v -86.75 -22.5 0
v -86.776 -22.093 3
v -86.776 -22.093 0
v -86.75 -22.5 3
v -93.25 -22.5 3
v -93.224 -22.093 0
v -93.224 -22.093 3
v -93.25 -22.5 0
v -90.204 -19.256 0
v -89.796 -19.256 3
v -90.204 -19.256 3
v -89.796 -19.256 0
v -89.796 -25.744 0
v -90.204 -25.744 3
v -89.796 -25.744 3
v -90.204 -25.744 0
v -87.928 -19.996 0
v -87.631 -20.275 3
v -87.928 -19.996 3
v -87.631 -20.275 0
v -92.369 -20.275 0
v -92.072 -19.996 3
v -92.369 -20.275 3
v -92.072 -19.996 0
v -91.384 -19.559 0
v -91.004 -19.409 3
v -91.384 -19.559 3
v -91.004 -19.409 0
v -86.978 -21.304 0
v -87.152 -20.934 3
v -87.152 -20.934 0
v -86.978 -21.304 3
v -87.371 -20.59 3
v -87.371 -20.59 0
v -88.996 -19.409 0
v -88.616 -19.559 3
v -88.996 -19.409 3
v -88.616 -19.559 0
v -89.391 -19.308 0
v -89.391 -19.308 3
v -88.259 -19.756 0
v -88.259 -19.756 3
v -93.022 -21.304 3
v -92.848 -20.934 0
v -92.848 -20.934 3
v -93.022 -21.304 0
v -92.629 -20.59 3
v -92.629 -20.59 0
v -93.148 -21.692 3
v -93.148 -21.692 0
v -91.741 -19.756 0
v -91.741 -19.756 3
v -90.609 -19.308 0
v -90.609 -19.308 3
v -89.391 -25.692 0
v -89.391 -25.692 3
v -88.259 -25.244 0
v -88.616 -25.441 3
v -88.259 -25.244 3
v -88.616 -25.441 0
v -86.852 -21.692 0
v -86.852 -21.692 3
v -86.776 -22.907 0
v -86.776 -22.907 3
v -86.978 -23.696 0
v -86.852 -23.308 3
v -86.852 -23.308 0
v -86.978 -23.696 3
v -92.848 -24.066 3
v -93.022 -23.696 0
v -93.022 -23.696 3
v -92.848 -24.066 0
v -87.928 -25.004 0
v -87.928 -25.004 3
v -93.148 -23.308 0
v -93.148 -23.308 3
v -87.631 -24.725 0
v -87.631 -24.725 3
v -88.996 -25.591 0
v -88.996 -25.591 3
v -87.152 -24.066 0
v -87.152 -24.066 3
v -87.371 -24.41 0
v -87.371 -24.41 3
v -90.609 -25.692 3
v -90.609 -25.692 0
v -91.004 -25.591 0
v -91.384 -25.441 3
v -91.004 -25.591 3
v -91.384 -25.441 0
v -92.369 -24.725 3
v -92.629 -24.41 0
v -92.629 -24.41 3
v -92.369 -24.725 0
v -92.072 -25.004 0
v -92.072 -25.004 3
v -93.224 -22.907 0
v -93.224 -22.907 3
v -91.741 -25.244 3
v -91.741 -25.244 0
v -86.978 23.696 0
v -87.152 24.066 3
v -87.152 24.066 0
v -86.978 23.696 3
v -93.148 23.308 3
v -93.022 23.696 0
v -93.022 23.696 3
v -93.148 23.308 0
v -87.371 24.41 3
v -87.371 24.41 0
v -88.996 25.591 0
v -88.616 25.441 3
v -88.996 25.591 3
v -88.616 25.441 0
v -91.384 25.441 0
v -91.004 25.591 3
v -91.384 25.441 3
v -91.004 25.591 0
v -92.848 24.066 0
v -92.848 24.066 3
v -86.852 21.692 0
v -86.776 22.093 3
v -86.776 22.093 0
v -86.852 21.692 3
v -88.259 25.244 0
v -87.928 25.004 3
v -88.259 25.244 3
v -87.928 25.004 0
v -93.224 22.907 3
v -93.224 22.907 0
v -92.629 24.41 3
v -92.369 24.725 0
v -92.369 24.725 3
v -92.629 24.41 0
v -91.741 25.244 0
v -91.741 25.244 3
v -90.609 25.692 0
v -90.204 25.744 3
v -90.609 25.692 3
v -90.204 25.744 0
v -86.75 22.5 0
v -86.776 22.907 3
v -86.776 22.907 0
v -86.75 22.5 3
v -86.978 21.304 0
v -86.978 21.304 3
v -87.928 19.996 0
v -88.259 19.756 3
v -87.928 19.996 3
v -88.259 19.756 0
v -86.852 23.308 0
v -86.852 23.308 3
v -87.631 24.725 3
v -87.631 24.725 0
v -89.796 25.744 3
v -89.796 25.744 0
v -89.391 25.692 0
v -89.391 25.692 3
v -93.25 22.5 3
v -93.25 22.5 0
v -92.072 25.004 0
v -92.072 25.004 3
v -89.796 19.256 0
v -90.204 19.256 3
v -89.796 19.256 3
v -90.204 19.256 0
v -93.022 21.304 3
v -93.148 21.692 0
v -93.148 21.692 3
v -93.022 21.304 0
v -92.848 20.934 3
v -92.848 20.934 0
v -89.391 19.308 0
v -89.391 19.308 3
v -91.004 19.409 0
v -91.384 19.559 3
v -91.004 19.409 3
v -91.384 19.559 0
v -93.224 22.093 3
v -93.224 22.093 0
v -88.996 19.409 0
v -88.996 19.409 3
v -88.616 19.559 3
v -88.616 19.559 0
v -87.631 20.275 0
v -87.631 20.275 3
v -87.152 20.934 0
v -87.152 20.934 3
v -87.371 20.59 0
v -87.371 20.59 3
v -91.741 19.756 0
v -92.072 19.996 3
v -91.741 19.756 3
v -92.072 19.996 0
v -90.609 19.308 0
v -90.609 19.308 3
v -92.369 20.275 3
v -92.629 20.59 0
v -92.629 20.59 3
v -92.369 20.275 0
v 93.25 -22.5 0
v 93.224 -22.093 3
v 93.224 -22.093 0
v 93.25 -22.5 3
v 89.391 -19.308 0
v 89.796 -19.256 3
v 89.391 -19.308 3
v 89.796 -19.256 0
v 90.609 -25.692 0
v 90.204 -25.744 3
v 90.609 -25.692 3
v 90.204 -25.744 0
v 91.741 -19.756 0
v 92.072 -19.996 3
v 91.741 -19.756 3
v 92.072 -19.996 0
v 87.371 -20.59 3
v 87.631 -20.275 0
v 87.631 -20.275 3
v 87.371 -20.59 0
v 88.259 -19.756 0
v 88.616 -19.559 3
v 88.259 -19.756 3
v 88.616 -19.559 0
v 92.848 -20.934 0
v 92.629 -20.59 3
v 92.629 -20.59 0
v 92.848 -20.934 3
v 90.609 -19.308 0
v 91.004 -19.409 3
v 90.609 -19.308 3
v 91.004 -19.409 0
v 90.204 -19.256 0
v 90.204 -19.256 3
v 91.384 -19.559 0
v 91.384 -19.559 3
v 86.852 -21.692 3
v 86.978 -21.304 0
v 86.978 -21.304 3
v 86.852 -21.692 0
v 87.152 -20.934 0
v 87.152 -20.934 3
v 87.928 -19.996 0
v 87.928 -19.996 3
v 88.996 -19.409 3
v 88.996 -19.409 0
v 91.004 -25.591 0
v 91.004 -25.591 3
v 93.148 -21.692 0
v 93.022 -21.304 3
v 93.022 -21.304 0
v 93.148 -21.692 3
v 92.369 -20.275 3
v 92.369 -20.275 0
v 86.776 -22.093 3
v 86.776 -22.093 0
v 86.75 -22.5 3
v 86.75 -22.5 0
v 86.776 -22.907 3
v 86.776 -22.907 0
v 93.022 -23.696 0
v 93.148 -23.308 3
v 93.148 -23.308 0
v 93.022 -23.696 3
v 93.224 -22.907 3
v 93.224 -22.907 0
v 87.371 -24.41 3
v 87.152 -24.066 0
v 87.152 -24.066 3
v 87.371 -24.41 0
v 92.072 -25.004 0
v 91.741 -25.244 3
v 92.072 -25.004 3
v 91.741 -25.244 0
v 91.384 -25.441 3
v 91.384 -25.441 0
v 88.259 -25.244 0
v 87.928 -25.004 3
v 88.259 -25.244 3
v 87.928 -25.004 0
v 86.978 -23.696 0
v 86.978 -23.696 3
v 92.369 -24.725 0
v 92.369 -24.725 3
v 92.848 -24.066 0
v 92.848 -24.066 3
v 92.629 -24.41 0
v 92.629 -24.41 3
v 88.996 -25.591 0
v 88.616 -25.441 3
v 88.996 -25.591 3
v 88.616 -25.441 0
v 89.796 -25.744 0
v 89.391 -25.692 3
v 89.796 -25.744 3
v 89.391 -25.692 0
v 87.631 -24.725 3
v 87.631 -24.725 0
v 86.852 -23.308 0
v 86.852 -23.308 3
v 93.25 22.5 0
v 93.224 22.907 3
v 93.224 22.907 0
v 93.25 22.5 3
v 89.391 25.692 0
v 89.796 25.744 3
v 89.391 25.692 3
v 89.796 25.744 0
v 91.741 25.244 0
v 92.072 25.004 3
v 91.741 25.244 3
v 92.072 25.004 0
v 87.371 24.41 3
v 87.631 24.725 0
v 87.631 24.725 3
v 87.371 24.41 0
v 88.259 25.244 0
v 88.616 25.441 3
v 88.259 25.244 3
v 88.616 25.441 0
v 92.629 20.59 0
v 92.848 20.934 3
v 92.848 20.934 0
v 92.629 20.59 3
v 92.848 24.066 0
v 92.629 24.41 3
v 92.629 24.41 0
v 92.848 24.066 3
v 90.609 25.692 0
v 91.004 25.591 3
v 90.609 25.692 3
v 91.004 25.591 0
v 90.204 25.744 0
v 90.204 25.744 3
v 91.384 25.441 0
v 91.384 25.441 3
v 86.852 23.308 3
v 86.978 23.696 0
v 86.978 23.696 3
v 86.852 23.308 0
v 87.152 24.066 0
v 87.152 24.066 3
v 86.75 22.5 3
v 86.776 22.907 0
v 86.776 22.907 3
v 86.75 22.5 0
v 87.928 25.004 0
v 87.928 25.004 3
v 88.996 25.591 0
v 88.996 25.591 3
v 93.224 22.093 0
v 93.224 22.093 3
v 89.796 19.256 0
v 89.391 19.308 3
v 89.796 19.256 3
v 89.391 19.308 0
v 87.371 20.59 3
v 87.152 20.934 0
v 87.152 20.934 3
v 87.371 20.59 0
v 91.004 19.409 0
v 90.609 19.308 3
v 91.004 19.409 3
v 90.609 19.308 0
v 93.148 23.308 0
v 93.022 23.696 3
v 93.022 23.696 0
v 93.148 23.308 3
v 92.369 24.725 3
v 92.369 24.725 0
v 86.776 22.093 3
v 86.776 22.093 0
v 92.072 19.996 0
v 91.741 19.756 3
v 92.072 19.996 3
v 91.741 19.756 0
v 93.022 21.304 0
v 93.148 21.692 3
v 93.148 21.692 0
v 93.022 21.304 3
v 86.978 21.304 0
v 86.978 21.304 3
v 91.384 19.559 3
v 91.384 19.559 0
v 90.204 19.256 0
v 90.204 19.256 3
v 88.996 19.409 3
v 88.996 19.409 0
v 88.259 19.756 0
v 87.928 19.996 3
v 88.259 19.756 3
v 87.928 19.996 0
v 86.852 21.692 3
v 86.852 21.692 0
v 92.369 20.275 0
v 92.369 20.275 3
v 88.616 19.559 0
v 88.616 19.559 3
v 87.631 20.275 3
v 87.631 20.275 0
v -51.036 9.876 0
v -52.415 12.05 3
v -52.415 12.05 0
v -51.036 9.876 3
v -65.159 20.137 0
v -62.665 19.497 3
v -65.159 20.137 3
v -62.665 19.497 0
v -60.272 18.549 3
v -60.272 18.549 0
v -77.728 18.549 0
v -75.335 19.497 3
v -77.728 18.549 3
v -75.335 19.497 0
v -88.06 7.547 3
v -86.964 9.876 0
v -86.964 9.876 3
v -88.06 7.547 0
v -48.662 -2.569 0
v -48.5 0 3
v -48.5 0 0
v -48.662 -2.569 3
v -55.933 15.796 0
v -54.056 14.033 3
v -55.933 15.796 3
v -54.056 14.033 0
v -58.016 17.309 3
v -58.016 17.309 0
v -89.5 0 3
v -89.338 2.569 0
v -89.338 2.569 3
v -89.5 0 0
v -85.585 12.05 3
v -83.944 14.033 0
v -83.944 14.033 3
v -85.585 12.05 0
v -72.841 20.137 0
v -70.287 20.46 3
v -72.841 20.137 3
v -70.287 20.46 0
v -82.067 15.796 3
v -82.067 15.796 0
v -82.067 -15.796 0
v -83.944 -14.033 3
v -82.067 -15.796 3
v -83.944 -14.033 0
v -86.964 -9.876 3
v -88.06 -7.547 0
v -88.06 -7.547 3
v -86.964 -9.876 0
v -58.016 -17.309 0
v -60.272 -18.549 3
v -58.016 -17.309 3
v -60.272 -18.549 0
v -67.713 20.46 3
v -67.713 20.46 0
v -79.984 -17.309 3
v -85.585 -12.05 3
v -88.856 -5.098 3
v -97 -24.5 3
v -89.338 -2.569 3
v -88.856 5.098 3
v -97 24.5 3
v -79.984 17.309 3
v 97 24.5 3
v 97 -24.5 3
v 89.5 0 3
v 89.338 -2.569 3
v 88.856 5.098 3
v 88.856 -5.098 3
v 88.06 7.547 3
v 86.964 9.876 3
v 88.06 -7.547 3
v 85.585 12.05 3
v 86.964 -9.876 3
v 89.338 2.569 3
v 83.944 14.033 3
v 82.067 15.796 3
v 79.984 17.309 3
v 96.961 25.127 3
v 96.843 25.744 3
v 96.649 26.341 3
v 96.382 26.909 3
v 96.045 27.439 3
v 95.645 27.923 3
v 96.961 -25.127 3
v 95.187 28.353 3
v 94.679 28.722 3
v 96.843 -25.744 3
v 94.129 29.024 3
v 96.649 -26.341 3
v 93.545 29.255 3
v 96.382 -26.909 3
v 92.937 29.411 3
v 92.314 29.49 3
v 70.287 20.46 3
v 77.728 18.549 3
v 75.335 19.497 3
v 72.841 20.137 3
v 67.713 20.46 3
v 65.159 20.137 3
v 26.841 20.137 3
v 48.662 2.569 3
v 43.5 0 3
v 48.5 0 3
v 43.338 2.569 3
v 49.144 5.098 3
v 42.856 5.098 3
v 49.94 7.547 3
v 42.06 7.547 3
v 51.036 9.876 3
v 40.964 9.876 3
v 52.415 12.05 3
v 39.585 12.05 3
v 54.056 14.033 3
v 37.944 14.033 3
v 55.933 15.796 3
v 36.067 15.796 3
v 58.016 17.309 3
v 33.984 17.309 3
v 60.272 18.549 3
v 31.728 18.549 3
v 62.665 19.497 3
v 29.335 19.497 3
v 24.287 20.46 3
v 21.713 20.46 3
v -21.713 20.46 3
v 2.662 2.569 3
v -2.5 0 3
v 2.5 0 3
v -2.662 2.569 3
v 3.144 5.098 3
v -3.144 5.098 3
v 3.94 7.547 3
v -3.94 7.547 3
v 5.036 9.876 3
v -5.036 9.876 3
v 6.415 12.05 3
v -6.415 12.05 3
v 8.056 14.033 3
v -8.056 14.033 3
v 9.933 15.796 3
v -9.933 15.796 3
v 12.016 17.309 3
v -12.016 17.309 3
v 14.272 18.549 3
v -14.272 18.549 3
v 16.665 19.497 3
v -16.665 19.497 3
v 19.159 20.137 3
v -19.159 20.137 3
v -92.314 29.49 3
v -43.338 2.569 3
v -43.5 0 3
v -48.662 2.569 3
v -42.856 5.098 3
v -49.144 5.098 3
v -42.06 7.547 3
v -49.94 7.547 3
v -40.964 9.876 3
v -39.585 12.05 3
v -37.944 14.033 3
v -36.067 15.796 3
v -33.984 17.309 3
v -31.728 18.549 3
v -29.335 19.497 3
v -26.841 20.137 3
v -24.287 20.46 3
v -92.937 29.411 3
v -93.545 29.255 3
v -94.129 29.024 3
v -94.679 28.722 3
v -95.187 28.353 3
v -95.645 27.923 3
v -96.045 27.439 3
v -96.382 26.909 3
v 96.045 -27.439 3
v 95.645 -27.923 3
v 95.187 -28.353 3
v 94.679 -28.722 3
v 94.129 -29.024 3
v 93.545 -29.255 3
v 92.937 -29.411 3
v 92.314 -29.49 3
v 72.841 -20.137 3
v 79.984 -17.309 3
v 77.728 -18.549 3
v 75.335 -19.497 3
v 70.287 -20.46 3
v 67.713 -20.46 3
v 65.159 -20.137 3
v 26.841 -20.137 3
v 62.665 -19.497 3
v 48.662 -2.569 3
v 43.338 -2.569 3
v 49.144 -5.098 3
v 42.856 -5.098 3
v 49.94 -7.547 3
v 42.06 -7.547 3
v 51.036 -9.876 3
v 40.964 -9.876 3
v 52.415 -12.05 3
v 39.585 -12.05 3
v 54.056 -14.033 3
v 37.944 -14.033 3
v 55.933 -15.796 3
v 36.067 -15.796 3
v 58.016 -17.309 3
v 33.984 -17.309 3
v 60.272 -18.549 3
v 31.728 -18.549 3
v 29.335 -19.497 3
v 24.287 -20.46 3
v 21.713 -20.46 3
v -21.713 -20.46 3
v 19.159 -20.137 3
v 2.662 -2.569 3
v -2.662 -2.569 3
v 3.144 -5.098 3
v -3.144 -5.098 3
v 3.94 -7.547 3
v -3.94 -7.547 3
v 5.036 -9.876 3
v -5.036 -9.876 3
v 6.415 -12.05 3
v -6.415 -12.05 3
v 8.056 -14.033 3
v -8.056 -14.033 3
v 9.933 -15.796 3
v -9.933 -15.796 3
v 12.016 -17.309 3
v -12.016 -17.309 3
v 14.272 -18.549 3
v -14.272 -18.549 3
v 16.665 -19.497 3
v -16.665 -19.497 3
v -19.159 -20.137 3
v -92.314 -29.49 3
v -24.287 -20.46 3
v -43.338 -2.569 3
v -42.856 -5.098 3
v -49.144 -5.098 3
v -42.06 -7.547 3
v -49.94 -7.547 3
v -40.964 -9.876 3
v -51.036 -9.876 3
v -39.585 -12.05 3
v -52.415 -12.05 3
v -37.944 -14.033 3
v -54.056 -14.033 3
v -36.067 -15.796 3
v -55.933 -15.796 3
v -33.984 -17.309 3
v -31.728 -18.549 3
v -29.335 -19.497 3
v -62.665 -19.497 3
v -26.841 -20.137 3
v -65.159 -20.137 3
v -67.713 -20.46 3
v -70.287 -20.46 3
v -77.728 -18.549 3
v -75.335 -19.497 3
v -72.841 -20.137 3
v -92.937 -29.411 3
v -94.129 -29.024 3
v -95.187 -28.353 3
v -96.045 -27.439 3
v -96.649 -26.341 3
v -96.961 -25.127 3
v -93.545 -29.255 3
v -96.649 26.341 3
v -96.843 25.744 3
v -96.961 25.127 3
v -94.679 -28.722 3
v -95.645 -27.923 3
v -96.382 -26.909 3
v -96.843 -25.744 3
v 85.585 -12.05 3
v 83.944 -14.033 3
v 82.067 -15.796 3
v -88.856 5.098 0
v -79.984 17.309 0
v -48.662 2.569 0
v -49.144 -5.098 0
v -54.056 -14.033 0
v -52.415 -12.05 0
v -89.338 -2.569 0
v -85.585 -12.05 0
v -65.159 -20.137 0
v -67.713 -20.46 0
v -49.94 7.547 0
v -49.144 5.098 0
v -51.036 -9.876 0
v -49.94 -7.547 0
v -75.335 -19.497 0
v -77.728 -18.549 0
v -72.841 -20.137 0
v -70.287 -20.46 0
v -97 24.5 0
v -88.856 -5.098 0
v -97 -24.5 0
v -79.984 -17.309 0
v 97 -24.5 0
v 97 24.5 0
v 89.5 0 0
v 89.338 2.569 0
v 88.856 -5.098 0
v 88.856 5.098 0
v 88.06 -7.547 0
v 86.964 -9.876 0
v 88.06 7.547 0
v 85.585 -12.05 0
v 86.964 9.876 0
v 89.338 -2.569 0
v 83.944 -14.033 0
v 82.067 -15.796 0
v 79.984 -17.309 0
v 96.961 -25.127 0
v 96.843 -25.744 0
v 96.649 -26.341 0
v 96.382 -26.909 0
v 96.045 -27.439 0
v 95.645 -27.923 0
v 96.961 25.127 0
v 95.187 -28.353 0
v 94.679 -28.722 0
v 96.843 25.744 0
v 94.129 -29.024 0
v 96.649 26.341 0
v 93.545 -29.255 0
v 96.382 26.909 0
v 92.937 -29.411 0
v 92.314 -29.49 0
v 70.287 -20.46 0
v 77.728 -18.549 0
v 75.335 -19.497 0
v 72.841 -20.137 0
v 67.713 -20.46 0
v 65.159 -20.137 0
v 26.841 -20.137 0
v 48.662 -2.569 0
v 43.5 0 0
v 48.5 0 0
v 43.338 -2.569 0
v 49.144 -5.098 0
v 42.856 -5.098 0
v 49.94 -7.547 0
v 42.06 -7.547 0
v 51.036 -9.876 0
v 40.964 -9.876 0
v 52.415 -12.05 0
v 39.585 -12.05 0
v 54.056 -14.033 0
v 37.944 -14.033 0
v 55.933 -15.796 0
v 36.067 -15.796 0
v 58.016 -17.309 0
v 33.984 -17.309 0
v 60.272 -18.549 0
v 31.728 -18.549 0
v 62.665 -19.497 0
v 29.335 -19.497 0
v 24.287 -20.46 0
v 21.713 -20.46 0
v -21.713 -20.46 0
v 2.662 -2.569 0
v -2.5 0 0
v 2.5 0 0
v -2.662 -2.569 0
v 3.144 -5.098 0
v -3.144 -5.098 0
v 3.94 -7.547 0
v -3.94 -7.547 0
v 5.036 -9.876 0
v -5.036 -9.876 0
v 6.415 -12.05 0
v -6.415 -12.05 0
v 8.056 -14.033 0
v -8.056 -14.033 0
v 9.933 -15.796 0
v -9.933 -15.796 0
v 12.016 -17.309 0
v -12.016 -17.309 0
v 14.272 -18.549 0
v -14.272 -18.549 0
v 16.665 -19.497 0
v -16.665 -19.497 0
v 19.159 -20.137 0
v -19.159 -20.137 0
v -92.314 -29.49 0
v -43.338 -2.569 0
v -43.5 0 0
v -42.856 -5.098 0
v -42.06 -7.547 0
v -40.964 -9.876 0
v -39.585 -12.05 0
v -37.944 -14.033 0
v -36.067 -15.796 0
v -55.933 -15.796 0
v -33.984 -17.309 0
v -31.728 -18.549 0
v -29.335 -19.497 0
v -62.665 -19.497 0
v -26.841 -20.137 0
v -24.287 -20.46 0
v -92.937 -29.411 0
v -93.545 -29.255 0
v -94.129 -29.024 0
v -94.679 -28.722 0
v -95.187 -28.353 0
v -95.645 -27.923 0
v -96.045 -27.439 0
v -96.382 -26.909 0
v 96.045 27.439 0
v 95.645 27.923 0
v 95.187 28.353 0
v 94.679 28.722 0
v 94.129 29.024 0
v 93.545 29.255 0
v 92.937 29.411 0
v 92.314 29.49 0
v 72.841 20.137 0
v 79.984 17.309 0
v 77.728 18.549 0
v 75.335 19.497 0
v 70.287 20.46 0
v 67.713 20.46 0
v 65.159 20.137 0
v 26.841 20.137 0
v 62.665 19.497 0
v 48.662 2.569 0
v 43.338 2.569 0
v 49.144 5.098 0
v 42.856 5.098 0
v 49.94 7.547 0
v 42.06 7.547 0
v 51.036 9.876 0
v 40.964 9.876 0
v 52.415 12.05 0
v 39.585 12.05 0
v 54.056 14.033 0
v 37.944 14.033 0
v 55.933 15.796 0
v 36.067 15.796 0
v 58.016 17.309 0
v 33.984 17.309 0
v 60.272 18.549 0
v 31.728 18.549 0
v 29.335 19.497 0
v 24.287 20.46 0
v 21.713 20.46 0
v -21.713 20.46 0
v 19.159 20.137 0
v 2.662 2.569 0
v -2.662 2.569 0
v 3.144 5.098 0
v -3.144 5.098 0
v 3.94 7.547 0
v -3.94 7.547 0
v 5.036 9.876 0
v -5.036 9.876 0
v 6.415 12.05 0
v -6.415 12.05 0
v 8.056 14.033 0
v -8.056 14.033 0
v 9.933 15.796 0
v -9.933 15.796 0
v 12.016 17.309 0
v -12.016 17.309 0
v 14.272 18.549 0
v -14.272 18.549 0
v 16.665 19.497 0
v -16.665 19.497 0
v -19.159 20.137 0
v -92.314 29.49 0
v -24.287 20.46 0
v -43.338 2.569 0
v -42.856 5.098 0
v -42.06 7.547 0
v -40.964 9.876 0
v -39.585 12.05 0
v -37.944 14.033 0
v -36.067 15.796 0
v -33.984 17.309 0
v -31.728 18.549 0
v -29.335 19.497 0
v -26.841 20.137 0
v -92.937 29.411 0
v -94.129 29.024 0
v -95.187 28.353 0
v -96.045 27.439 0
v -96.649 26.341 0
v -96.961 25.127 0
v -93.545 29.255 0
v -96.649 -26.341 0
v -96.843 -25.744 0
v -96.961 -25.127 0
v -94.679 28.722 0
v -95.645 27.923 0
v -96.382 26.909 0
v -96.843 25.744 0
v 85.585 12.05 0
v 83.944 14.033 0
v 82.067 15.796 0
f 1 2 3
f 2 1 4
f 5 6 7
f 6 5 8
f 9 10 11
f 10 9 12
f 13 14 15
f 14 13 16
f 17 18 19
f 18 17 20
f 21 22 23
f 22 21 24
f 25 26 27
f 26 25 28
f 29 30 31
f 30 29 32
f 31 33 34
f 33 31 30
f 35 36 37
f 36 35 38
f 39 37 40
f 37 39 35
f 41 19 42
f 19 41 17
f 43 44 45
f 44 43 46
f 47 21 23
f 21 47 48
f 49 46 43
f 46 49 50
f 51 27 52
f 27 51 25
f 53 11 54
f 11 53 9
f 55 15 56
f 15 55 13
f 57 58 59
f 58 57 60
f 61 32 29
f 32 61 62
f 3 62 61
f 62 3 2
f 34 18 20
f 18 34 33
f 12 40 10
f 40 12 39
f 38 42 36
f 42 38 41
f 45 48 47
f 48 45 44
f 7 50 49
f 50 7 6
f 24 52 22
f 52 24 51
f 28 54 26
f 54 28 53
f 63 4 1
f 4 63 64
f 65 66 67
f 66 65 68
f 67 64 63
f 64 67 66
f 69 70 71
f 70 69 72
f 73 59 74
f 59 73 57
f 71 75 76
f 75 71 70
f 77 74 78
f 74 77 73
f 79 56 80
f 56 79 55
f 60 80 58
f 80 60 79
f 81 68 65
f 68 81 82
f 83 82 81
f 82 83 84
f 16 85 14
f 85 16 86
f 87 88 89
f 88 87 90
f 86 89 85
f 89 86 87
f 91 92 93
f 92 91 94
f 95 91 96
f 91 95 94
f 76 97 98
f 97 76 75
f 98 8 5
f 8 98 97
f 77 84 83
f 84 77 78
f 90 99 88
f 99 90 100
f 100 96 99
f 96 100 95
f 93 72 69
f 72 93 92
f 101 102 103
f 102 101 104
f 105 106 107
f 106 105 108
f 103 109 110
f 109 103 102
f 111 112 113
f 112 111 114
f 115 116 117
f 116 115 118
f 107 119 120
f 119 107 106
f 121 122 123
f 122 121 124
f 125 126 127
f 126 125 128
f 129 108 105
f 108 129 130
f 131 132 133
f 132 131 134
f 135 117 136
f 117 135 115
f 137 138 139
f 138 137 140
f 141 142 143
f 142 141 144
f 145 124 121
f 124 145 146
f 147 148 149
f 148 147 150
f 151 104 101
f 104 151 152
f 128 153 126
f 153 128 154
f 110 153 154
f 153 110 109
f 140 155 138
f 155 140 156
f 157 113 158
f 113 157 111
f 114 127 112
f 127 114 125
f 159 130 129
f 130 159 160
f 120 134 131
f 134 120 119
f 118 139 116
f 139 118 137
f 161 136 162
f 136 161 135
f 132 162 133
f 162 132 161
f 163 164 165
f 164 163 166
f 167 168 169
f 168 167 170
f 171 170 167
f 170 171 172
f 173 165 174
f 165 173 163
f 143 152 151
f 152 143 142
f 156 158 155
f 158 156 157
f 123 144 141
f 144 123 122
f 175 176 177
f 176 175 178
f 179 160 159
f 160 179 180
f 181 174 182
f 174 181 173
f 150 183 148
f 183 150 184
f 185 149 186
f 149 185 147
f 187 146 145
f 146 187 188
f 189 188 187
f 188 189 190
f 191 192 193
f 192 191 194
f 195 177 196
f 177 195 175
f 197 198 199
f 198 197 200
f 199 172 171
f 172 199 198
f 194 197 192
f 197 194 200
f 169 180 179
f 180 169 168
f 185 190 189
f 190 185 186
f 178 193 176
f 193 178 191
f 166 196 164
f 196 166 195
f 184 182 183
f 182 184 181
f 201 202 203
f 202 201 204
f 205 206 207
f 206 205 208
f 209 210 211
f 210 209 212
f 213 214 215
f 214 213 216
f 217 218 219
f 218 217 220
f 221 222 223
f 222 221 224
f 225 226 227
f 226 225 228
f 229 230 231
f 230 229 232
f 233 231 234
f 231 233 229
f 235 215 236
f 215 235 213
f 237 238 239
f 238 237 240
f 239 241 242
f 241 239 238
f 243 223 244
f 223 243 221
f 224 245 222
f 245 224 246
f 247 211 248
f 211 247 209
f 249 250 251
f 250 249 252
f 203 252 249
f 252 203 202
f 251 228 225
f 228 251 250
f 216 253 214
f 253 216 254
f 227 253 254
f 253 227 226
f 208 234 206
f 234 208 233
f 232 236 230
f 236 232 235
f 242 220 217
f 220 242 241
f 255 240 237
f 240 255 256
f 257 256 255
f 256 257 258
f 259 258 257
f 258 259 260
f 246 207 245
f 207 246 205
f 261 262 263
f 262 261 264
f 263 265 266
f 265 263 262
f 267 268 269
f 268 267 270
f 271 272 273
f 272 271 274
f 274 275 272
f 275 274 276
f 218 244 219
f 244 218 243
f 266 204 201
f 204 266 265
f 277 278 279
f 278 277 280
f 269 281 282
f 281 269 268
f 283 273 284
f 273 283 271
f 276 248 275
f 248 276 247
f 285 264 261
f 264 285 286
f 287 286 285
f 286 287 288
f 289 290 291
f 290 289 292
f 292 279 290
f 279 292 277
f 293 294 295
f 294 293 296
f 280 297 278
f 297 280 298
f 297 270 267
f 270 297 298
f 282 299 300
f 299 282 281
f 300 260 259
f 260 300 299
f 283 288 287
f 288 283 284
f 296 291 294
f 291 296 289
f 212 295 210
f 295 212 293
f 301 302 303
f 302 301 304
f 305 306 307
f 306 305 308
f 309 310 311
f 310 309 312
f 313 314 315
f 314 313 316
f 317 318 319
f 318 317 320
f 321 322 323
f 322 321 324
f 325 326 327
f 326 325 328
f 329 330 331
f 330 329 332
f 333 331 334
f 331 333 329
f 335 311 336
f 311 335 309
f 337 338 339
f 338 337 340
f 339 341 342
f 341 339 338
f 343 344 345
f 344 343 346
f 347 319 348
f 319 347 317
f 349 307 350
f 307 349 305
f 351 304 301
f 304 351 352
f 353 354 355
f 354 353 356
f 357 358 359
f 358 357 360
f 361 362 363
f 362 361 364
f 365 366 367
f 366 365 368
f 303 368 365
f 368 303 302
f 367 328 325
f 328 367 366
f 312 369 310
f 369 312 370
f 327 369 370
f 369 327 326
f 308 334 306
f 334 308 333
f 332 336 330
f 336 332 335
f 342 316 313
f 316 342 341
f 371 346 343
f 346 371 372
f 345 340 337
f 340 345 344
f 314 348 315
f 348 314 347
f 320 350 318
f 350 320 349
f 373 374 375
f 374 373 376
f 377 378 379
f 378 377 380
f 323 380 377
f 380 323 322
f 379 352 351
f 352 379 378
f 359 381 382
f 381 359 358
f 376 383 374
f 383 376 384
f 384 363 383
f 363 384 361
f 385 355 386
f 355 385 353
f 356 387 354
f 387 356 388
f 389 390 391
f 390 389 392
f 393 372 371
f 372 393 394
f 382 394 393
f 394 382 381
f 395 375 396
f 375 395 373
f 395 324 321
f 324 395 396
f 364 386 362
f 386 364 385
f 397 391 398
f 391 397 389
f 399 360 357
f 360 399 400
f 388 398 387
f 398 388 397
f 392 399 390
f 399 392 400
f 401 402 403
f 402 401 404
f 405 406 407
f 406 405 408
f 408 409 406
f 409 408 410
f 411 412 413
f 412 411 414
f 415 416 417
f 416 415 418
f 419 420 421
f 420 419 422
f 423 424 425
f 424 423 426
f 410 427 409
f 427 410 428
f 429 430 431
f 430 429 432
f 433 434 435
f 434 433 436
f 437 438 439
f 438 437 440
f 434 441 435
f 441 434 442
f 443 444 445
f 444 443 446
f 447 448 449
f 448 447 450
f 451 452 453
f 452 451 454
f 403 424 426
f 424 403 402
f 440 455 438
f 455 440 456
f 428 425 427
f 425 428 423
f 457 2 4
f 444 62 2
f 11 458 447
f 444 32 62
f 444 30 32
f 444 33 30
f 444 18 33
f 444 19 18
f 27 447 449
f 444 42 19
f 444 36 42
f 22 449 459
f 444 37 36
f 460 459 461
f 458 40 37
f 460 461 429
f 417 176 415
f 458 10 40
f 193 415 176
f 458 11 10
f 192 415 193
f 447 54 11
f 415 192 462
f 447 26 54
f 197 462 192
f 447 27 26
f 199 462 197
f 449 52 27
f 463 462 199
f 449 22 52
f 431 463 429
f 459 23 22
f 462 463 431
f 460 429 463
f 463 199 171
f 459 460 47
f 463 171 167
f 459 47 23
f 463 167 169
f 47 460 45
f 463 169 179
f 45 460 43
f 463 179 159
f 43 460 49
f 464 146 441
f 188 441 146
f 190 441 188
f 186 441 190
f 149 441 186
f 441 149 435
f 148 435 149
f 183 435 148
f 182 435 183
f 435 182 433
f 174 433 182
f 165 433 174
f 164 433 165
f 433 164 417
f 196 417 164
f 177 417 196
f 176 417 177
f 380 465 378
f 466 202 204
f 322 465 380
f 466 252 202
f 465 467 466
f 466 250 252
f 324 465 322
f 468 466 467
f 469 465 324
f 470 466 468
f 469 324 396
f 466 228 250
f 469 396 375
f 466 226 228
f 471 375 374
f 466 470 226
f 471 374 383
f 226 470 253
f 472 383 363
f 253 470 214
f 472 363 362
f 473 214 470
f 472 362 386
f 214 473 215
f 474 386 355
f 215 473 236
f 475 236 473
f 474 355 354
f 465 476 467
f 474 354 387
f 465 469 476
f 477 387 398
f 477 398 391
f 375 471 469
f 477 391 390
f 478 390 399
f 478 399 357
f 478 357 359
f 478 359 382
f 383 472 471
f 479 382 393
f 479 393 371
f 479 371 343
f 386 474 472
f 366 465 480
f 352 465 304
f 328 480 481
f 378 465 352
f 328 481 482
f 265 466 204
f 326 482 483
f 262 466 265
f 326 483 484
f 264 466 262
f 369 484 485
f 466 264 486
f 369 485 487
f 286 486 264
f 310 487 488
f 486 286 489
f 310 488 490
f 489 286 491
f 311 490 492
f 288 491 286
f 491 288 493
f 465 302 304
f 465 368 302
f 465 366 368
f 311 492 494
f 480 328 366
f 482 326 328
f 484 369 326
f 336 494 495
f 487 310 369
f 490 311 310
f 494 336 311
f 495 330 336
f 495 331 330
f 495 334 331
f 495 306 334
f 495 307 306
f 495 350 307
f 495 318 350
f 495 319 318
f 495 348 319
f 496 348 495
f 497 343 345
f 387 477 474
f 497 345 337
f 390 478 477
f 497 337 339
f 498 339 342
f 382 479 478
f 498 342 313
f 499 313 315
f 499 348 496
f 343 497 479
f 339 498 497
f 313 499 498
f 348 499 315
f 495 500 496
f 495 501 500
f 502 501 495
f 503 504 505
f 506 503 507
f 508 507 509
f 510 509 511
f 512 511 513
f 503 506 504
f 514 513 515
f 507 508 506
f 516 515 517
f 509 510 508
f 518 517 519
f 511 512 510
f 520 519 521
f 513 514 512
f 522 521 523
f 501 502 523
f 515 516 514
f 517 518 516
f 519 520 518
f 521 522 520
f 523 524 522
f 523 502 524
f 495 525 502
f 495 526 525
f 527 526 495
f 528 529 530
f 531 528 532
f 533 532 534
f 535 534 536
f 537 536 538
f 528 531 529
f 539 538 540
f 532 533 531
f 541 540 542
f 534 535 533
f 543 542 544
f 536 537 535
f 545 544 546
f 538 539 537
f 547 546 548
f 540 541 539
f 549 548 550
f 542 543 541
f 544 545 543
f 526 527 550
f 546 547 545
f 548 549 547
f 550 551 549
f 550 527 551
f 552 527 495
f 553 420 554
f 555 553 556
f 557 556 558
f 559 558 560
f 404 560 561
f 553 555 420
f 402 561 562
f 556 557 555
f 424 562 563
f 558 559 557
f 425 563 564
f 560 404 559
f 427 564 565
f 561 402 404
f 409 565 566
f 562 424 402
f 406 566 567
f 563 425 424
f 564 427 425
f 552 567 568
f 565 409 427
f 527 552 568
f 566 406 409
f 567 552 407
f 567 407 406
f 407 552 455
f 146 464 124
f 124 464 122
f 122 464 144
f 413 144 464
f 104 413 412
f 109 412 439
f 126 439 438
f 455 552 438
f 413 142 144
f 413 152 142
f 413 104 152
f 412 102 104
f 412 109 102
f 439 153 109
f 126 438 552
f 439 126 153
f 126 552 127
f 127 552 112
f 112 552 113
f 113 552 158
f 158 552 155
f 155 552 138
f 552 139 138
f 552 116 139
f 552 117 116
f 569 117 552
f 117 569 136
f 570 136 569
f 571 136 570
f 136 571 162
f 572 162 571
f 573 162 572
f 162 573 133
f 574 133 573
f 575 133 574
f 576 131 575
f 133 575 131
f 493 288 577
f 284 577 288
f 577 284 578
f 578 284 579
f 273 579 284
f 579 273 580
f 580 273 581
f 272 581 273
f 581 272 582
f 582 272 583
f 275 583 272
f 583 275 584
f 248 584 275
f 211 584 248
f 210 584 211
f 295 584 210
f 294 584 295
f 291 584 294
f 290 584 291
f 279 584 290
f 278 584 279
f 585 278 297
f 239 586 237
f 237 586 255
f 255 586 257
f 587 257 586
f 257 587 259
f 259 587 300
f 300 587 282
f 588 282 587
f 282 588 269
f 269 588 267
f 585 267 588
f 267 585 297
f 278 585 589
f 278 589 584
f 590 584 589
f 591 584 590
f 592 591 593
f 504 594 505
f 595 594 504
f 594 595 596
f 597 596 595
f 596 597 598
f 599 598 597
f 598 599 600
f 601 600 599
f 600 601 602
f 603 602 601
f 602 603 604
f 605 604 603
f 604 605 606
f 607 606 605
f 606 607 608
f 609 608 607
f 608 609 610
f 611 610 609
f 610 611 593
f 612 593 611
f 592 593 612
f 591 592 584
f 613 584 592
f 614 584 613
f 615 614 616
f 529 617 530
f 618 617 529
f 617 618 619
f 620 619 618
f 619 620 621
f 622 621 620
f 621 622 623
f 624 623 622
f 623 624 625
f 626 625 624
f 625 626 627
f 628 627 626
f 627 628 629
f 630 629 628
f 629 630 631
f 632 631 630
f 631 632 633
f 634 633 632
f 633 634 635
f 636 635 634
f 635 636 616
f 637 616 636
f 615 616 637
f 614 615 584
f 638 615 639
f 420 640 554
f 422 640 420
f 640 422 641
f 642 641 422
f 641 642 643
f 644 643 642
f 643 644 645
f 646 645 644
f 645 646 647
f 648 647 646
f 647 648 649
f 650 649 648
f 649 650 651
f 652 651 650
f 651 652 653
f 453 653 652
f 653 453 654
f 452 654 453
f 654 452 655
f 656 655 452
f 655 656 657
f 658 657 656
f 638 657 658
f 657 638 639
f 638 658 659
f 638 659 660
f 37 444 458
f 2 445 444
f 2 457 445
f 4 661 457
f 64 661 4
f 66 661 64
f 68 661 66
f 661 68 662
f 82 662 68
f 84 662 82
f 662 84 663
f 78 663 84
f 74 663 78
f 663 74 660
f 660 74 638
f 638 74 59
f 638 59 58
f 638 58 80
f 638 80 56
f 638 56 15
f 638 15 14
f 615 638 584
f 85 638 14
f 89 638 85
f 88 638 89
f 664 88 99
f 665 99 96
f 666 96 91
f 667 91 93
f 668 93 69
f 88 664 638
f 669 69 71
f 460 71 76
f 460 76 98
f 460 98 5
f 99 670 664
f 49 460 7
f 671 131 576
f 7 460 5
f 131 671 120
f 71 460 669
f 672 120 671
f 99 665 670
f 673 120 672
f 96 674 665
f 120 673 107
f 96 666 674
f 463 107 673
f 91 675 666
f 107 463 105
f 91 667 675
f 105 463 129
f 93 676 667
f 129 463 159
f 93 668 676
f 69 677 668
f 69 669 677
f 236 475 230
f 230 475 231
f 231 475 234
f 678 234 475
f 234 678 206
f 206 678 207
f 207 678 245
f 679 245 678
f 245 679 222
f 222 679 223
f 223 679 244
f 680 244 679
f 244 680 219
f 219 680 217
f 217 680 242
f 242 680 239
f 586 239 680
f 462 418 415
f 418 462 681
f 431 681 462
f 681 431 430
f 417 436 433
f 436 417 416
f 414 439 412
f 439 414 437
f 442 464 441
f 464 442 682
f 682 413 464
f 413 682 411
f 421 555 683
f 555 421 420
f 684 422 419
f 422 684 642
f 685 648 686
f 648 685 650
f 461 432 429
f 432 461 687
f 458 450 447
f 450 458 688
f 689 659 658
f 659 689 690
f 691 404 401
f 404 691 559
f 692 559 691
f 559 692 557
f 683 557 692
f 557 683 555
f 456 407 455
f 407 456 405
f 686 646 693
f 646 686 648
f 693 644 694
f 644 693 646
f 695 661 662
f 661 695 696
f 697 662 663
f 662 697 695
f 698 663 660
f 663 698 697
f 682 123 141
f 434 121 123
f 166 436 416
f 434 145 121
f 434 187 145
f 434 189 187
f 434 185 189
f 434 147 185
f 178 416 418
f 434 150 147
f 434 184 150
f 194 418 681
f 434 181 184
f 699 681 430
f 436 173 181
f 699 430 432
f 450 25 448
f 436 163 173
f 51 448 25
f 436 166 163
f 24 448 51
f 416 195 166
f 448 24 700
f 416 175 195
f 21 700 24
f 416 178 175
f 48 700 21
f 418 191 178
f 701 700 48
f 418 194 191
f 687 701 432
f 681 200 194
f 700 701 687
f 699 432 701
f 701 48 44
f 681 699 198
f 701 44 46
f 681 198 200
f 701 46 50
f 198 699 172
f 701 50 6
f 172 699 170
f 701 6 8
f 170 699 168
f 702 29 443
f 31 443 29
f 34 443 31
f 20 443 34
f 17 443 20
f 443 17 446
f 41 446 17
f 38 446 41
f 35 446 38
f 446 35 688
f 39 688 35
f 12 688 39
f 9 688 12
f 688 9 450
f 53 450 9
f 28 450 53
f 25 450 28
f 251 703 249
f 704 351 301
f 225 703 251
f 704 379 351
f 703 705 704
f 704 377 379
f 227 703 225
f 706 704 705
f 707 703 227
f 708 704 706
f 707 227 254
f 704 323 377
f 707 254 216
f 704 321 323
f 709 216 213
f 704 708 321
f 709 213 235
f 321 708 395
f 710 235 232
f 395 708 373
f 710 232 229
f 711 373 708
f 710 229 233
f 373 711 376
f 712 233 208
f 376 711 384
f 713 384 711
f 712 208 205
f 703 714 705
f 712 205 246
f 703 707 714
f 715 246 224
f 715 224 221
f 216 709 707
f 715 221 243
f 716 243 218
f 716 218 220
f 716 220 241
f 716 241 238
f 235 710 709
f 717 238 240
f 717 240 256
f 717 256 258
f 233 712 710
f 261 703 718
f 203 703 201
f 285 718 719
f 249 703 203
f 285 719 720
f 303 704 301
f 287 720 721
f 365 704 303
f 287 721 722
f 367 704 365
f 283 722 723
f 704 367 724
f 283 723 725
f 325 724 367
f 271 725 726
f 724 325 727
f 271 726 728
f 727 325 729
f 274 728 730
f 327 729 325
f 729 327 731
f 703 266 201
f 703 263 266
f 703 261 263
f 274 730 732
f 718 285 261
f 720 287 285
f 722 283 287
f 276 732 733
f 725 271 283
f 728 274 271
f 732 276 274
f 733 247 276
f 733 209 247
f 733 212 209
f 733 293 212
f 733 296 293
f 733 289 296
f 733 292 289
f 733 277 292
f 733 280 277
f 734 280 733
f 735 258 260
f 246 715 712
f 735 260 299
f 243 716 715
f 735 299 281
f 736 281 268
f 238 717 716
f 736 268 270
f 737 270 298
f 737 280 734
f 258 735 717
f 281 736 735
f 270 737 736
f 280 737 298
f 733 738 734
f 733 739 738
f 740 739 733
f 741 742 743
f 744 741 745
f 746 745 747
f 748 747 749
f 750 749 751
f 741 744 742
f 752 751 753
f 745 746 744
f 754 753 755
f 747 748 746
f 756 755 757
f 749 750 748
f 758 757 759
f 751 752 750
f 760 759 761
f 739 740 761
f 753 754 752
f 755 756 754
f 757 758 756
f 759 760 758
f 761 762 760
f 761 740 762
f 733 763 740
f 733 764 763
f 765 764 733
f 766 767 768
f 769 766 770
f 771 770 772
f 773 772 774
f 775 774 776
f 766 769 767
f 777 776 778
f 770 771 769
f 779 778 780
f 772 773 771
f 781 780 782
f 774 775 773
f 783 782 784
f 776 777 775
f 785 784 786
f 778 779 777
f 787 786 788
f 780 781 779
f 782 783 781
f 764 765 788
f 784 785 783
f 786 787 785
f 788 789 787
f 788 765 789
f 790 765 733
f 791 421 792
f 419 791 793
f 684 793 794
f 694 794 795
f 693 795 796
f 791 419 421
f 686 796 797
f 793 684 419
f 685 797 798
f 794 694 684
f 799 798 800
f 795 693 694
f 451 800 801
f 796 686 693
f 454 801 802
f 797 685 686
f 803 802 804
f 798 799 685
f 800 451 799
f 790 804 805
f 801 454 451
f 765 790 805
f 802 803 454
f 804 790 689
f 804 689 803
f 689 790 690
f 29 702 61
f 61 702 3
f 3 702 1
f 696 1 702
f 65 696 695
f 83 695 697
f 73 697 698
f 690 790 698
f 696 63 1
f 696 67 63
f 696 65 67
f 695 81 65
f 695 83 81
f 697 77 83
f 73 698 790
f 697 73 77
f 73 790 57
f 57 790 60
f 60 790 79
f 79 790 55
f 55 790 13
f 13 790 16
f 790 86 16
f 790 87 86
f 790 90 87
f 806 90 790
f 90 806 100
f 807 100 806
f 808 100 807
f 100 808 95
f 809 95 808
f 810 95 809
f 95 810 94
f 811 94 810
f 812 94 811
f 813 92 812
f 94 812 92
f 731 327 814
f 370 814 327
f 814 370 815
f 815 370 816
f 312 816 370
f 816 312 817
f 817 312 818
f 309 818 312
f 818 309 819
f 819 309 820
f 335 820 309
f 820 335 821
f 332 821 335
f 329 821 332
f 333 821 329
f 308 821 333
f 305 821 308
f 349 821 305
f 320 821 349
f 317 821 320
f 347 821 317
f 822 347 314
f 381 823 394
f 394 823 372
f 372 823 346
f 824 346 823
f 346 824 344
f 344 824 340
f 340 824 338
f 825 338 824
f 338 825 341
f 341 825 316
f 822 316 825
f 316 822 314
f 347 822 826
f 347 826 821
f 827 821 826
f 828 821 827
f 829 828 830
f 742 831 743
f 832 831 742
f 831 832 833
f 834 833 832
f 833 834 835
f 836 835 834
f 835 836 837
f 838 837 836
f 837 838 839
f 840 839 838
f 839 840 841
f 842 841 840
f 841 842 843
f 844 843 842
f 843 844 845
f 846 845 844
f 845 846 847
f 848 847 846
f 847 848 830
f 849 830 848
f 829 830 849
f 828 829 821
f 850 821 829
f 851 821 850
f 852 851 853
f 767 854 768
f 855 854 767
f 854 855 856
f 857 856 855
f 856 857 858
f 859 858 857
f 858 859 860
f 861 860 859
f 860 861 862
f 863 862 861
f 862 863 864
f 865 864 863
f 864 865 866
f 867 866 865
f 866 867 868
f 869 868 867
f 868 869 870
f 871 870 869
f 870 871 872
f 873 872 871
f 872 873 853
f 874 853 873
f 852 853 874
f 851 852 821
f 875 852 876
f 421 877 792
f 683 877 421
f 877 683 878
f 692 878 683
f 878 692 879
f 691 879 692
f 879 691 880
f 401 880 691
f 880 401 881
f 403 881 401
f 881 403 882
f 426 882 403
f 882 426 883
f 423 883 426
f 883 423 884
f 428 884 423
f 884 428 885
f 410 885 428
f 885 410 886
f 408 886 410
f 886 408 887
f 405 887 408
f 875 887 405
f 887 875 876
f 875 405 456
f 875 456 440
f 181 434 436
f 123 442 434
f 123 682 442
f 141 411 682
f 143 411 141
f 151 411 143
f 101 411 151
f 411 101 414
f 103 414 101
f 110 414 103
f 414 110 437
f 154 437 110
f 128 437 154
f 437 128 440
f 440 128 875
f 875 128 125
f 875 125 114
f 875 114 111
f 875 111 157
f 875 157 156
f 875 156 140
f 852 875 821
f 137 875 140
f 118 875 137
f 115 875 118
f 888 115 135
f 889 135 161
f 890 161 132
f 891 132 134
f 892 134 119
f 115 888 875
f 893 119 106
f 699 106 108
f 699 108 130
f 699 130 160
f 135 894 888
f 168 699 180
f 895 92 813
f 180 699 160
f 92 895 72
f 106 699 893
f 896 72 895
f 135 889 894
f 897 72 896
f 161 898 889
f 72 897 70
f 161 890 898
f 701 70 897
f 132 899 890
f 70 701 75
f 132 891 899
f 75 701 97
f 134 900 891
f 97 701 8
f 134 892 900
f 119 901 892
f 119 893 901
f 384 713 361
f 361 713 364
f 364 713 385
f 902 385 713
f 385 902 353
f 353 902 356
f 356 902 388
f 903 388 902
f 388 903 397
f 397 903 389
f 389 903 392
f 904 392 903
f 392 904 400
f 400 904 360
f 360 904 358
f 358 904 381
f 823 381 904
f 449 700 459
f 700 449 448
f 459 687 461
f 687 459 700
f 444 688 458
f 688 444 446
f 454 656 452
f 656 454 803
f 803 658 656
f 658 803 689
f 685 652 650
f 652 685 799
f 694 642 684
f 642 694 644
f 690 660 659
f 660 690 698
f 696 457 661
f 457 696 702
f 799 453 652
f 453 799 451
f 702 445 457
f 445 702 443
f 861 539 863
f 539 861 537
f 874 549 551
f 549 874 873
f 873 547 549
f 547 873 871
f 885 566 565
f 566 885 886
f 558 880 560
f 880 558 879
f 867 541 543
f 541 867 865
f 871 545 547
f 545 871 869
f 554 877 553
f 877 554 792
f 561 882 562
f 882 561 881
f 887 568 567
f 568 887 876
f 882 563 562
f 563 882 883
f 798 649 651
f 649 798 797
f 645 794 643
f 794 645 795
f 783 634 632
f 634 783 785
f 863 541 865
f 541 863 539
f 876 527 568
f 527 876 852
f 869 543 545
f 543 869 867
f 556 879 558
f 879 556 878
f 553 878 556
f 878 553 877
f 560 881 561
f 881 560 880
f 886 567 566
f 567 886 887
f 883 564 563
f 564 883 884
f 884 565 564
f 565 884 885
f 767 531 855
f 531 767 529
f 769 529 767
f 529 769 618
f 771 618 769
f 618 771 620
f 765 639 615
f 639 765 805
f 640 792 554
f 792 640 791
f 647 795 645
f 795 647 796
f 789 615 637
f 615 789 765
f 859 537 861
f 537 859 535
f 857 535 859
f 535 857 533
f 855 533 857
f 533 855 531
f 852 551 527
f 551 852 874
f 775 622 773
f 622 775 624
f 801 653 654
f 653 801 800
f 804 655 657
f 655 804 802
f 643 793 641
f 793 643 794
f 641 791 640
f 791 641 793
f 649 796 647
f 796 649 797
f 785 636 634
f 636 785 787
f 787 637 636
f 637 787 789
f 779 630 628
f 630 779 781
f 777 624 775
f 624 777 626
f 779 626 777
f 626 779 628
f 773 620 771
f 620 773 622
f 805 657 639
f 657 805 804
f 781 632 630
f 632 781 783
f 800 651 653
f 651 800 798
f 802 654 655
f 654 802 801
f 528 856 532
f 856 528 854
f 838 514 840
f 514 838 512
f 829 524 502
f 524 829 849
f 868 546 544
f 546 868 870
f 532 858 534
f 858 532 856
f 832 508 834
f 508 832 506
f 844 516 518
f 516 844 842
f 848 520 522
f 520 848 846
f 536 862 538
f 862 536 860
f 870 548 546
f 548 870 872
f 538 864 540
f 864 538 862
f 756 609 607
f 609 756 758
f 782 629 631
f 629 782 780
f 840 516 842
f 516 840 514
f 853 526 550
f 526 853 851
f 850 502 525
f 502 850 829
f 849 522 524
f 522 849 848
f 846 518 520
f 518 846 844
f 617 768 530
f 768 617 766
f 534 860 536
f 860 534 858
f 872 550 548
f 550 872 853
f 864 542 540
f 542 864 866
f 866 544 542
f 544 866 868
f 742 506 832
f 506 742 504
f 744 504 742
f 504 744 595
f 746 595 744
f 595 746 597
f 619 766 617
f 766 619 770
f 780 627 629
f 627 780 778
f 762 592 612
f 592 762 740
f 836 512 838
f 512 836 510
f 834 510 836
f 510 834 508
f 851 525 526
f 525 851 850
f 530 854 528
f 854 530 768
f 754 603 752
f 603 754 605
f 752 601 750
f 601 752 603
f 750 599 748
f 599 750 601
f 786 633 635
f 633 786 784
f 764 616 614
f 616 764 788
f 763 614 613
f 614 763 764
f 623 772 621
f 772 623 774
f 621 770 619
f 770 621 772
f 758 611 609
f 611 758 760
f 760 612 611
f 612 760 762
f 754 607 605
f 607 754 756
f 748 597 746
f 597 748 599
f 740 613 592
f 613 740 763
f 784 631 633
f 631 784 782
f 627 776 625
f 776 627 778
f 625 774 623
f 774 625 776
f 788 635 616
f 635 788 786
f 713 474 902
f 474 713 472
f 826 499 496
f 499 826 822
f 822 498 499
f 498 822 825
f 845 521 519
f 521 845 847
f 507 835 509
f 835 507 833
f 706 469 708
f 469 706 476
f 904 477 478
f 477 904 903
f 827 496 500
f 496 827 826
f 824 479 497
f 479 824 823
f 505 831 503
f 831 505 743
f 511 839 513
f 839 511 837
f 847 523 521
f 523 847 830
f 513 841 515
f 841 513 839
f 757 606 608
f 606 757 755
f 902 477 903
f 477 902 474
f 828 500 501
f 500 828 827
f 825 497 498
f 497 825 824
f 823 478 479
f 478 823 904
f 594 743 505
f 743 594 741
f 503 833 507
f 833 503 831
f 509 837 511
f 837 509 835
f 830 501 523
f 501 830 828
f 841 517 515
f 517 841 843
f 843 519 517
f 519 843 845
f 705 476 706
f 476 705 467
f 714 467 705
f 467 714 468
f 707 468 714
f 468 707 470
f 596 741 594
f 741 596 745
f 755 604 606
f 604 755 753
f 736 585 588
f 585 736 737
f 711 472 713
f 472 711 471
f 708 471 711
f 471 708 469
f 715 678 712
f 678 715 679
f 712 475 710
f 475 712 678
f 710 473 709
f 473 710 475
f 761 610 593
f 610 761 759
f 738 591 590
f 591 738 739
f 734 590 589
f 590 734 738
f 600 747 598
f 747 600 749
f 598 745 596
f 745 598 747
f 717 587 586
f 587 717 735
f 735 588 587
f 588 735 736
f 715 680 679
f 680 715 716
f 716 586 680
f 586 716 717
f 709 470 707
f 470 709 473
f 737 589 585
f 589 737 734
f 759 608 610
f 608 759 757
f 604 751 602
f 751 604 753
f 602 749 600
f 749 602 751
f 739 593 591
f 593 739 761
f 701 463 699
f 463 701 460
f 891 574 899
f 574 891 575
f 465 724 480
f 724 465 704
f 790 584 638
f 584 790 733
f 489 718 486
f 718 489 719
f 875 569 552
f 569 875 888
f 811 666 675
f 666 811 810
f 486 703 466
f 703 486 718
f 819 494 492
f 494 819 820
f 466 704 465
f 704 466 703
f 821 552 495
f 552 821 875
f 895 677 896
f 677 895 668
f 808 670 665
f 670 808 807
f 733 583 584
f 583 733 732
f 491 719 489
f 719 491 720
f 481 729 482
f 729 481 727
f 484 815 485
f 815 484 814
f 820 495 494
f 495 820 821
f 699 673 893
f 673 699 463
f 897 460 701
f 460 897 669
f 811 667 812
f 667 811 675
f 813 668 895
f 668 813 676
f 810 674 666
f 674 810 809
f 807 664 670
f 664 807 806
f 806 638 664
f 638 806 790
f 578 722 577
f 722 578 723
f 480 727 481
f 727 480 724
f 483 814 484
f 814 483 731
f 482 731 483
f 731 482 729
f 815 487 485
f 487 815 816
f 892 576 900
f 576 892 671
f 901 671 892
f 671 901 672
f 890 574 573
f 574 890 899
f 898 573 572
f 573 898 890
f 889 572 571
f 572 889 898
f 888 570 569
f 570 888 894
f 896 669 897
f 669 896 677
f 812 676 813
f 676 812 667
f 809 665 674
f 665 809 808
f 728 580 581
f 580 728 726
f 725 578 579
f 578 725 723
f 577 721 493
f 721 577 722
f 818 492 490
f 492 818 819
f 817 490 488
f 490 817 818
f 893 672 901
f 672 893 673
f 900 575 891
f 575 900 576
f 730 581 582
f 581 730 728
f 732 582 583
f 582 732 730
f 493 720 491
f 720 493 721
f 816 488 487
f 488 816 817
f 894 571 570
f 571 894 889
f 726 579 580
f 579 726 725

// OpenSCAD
$fn = 50;


difference() {
	union() {
		hull() {
			translate(v = [-92.0000000000, 24.5000000000, 0]) {
				cylinder(h = 3, r = 5);
			}
			translate(v = [92.0000000000, 24.5000000000, 0]) {
				cylinder(h = 3, r = 5);
			}
			translate(v = [-92.0000000000, -24.5000000000, 0]) {
				cylinder(h = 3, r = 5);
			}
			translate(v = [92.0000000000, -24.5000000000, 0]) {
				cylinder(h = 3, r = 5);
			}
		}
	}
	union() {
		#translate(v = [-90.0000000000, -22.5000000000, -100.0000000000]) {
			cylinder(h = 200, r = 3.2500000000);
		}
		#translate(v = [-90.0000000000, 22.5000000000, -100.0000000000]) {
			cylinder(h = 200, r = 3.2500000000);
		}
		#translate(v = [90.0000000000, -22.5000000000, -100.0000000000]) {
			cylinder(h = 200, r = 3.2500000000);
		}
		#translate(v = [90.0000000000, 22.5000000000, -100.0000000000]) {
			cylinder(h = 200, r = 3.2500000000);
		}
		#translate(v = [-69.0000000000, 0, 0]) {
			cylinder(h = 3, r = 20.5000000000);
		}
		#translate(v = [-23.0000000000, 0, 0]) {
			cylinder(h = 3, r = 20.5000000000);
		}
		#translate(v = [23.0000000000, 0, 0]) {
			cylinder(h = 3, r = 20.5000000000);
		}
		#translate(v = [69.0000000000, 0, 0]) {
			cylinder(h = 3, r = 20.5000000000);
		}
	}
}
